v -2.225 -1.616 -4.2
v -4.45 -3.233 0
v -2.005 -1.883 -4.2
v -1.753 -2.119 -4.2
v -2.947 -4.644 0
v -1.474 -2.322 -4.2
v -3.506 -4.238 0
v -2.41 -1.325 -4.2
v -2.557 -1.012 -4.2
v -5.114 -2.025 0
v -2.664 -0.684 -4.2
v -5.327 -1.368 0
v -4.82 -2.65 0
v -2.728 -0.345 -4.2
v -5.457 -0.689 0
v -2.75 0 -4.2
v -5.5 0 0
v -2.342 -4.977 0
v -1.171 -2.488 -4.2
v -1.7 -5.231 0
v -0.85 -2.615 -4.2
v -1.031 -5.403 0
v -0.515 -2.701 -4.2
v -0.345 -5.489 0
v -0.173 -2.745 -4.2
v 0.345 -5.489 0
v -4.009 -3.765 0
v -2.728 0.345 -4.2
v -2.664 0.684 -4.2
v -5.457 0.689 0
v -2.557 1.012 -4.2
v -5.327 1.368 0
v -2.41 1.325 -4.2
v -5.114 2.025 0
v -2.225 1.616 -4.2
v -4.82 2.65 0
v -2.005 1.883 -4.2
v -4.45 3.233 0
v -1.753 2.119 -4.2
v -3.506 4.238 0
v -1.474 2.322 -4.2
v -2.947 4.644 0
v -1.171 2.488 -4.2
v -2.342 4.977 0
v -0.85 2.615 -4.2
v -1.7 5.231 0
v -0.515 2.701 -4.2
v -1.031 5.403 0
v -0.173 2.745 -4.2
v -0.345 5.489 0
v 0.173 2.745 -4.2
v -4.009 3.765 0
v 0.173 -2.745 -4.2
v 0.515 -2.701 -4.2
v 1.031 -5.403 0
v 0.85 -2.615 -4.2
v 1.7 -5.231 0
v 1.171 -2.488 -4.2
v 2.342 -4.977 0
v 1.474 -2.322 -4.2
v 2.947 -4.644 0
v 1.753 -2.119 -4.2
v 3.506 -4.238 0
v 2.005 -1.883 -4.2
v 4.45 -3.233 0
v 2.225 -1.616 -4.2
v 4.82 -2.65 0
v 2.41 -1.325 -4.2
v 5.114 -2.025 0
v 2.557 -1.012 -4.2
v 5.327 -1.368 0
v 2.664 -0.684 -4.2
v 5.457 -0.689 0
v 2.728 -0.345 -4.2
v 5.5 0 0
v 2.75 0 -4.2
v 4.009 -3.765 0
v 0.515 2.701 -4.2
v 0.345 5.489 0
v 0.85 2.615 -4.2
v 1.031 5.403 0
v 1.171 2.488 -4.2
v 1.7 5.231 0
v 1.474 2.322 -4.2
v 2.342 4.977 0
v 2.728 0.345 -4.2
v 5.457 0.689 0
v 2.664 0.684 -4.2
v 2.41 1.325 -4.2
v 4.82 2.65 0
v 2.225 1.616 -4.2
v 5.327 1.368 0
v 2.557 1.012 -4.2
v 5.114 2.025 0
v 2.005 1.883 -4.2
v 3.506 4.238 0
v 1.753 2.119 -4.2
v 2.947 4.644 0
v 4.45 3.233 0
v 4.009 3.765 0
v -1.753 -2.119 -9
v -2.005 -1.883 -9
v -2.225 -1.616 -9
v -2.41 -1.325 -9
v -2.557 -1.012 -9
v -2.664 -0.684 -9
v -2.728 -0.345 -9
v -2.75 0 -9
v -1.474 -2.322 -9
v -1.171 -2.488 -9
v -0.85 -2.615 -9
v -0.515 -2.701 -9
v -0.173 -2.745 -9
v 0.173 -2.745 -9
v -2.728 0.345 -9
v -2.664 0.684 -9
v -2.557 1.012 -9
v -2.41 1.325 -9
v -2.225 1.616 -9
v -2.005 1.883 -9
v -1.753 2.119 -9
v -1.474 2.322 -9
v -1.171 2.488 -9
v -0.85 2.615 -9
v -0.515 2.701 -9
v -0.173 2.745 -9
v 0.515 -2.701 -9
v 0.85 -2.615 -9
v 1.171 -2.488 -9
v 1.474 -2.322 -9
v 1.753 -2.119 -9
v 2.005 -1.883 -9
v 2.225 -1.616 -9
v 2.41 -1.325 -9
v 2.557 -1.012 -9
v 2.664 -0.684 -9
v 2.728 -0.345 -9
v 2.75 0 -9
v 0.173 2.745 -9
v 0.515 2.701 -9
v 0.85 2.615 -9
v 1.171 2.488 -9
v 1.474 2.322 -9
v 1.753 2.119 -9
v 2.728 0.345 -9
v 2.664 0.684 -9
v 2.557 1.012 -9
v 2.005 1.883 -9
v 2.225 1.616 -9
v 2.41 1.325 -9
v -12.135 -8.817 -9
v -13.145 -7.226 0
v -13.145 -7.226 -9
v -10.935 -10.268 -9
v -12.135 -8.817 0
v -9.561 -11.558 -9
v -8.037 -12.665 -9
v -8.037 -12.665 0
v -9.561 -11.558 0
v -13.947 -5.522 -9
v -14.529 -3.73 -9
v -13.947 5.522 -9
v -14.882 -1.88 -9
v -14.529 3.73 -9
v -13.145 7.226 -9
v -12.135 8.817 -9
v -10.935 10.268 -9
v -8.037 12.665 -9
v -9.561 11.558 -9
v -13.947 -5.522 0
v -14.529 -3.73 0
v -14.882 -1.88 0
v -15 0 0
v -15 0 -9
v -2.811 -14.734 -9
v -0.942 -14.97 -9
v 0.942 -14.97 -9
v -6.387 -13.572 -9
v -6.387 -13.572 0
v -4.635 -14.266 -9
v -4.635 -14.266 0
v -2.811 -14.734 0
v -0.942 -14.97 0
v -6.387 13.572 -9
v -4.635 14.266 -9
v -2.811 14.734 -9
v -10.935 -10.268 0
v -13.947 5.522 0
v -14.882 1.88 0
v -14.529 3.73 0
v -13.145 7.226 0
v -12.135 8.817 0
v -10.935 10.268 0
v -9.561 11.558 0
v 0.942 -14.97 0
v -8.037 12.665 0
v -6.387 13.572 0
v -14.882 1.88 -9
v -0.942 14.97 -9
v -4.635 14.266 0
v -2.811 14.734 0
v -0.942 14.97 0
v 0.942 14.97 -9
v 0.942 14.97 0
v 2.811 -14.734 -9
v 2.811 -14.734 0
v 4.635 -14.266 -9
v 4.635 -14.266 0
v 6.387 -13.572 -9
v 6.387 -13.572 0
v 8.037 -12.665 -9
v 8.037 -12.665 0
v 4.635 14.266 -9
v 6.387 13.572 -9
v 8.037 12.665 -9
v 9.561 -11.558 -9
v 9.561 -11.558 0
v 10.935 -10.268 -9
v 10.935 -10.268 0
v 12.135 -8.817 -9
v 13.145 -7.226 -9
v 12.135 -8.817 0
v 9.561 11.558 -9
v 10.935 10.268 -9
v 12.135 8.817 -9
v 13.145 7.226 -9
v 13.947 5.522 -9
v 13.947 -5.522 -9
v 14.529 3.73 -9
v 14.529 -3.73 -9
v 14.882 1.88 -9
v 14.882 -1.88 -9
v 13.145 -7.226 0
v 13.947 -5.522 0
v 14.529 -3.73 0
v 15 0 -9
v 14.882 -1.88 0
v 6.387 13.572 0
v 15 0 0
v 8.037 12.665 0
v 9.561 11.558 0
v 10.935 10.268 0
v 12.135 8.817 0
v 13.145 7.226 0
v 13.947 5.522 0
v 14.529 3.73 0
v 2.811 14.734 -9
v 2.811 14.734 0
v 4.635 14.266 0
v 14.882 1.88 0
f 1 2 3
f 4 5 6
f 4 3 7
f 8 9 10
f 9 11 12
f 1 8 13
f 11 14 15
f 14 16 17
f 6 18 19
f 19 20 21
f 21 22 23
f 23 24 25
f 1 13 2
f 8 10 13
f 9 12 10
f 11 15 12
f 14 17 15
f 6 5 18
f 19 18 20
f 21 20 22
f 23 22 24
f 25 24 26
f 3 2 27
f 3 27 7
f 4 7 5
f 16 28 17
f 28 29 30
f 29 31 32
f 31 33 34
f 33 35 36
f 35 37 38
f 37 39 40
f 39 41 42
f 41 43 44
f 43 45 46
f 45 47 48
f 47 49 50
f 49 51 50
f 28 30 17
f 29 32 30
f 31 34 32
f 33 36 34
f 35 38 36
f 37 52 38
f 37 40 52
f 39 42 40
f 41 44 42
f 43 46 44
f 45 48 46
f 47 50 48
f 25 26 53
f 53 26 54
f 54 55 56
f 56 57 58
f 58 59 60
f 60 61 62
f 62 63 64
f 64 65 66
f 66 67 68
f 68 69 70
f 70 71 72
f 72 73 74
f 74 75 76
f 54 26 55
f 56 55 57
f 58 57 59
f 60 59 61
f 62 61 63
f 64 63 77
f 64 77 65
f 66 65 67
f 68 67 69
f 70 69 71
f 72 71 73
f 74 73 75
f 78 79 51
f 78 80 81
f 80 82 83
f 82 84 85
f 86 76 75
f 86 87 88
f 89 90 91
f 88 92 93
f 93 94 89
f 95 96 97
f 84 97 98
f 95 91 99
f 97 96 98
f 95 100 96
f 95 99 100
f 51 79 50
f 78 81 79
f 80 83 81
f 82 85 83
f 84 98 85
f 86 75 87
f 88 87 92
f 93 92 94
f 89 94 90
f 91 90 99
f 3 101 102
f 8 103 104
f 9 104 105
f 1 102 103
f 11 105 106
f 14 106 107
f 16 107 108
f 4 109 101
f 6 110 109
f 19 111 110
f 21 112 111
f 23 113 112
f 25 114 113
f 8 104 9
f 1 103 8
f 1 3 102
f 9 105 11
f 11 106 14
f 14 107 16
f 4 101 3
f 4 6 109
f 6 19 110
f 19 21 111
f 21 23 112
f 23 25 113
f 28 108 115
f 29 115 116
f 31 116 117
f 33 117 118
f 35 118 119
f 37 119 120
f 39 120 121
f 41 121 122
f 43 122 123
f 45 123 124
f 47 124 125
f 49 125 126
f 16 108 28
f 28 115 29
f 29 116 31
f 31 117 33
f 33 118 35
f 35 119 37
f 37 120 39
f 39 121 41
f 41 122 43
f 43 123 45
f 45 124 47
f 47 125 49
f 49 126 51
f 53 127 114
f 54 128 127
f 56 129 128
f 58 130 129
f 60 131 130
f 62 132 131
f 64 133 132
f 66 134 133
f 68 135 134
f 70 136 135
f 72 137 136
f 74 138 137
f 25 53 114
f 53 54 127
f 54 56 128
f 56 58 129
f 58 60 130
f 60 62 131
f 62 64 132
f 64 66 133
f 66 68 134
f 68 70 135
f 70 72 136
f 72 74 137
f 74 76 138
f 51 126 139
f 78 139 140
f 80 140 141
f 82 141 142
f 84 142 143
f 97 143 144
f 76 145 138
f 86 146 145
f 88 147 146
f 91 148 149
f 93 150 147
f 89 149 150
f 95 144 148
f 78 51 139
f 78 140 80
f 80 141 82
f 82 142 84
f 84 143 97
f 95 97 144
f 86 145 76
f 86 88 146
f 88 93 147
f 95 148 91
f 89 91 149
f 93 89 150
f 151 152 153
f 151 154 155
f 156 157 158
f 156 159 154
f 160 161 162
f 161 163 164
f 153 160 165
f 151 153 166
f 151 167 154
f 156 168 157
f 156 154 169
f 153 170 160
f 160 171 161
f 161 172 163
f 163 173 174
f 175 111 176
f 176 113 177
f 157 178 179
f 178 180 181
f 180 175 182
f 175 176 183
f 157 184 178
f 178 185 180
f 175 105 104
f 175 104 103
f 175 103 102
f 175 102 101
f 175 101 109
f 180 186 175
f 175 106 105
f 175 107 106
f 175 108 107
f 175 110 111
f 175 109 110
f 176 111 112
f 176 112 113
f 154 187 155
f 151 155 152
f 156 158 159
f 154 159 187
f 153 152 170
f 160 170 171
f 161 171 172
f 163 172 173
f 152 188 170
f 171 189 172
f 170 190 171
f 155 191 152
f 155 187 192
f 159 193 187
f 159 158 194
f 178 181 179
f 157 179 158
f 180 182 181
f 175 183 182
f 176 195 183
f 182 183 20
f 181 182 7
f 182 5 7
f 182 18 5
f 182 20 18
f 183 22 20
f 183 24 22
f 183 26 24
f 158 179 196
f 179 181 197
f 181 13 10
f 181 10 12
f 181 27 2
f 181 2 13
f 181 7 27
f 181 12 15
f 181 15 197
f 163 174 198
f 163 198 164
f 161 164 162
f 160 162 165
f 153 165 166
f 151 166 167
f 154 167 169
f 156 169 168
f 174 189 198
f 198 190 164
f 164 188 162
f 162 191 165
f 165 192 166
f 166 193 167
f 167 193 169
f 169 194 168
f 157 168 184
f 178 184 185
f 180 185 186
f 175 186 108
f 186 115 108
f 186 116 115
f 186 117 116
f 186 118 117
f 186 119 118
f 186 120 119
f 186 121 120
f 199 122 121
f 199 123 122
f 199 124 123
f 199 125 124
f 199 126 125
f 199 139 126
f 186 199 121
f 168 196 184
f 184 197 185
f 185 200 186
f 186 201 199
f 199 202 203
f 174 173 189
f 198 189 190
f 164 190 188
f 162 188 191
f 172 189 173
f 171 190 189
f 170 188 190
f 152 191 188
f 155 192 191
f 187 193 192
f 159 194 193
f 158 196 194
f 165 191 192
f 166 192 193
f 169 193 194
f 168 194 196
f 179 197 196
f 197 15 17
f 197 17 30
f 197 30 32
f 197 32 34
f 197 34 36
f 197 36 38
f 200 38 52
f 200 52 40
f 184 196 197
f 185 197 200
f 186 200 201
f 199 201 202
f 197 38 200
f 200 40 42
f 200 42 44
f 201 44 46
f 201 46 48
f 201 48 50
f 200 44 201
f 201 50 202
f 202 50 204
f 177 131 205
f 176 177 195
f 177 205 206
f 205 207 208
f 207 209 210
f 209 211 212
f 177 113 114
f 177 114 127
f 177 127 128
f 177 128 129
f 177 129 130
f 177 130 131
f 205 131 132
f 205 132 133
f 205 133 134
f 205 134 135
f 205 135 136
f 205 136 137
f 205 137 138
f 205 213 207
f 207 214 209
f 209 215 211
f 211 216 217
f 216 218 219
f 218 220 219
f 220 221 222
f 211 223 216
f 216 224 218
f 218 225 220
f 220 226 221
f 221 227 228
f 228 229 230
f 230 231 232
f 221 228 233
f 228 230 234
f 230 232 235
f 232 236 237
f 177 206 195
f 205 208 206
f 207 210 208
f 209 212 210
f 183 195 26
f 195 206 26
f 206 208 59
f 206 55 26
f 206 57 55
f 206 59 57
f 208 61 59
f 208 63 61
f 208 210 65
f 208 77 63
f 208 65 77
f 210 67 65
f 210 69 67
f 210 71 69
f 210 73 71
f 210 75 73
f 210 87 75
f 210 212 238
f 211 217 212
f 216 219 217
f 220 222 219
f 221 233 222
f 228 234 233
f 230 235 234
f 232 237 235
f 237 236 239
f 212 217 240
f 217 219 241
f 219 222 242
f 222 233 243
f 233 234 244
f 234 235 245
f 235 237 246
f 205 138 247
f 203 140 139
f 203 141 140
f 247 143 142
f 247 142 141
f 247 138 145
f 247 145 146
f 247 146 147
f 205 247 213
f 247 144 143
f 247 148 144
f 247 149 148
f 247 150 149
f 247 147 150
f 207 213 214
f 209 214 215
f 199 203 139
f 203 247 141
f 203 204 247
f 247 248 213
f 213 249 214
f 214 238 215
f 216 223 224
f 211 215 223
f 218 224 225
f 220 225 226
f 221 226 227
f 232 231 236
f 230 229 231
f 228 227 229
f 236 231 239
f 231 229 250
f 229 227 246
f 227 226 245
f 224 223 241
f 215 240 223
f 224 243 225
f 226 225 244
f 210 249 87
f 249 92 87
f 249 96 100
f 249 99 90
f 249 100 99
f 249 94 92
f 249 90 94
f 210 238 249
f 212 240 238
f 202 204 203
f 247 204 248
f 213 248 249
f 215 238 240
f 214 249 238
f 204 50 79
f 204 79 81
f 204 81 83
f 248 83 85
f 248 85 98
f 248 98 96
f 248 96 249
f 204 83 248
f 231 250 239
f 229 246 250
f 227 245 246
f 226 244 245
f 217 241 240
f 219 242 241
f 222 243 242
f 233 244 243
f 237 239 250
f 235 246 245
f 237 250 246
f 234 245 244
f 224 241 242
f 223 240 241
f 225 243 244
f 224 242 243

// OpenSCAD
$fn = 50;

difference() {
	union() {
		translate(v = [0, 0, -9.0]) {
			cylinder(h = 9, r = 15.0);
		}
	}
	union() {
		translate(v = [0, 0, 0]) {
			rotate(a = [0, 0, 0]) {
				difference() {
					union() {
						translate(v = [0, 0, -12.0]) {
							cylinder(h = 12, r = 2.25);
						}
						translate(v = [0, 0, -4.2]) {
							cylinder(h = 4.2, r1 = 2.75, r2 = 5.5);
						}
						translate(v = [0, 0, -12.0]) {
							cylinder(h = 12, r = 2.75);
						}
						translate(v = [0, 0, -12.0]) {
							cylinder(h = 12, r = 2.25);
						}
					}
					union();
				}
			}
		}
	}
}
